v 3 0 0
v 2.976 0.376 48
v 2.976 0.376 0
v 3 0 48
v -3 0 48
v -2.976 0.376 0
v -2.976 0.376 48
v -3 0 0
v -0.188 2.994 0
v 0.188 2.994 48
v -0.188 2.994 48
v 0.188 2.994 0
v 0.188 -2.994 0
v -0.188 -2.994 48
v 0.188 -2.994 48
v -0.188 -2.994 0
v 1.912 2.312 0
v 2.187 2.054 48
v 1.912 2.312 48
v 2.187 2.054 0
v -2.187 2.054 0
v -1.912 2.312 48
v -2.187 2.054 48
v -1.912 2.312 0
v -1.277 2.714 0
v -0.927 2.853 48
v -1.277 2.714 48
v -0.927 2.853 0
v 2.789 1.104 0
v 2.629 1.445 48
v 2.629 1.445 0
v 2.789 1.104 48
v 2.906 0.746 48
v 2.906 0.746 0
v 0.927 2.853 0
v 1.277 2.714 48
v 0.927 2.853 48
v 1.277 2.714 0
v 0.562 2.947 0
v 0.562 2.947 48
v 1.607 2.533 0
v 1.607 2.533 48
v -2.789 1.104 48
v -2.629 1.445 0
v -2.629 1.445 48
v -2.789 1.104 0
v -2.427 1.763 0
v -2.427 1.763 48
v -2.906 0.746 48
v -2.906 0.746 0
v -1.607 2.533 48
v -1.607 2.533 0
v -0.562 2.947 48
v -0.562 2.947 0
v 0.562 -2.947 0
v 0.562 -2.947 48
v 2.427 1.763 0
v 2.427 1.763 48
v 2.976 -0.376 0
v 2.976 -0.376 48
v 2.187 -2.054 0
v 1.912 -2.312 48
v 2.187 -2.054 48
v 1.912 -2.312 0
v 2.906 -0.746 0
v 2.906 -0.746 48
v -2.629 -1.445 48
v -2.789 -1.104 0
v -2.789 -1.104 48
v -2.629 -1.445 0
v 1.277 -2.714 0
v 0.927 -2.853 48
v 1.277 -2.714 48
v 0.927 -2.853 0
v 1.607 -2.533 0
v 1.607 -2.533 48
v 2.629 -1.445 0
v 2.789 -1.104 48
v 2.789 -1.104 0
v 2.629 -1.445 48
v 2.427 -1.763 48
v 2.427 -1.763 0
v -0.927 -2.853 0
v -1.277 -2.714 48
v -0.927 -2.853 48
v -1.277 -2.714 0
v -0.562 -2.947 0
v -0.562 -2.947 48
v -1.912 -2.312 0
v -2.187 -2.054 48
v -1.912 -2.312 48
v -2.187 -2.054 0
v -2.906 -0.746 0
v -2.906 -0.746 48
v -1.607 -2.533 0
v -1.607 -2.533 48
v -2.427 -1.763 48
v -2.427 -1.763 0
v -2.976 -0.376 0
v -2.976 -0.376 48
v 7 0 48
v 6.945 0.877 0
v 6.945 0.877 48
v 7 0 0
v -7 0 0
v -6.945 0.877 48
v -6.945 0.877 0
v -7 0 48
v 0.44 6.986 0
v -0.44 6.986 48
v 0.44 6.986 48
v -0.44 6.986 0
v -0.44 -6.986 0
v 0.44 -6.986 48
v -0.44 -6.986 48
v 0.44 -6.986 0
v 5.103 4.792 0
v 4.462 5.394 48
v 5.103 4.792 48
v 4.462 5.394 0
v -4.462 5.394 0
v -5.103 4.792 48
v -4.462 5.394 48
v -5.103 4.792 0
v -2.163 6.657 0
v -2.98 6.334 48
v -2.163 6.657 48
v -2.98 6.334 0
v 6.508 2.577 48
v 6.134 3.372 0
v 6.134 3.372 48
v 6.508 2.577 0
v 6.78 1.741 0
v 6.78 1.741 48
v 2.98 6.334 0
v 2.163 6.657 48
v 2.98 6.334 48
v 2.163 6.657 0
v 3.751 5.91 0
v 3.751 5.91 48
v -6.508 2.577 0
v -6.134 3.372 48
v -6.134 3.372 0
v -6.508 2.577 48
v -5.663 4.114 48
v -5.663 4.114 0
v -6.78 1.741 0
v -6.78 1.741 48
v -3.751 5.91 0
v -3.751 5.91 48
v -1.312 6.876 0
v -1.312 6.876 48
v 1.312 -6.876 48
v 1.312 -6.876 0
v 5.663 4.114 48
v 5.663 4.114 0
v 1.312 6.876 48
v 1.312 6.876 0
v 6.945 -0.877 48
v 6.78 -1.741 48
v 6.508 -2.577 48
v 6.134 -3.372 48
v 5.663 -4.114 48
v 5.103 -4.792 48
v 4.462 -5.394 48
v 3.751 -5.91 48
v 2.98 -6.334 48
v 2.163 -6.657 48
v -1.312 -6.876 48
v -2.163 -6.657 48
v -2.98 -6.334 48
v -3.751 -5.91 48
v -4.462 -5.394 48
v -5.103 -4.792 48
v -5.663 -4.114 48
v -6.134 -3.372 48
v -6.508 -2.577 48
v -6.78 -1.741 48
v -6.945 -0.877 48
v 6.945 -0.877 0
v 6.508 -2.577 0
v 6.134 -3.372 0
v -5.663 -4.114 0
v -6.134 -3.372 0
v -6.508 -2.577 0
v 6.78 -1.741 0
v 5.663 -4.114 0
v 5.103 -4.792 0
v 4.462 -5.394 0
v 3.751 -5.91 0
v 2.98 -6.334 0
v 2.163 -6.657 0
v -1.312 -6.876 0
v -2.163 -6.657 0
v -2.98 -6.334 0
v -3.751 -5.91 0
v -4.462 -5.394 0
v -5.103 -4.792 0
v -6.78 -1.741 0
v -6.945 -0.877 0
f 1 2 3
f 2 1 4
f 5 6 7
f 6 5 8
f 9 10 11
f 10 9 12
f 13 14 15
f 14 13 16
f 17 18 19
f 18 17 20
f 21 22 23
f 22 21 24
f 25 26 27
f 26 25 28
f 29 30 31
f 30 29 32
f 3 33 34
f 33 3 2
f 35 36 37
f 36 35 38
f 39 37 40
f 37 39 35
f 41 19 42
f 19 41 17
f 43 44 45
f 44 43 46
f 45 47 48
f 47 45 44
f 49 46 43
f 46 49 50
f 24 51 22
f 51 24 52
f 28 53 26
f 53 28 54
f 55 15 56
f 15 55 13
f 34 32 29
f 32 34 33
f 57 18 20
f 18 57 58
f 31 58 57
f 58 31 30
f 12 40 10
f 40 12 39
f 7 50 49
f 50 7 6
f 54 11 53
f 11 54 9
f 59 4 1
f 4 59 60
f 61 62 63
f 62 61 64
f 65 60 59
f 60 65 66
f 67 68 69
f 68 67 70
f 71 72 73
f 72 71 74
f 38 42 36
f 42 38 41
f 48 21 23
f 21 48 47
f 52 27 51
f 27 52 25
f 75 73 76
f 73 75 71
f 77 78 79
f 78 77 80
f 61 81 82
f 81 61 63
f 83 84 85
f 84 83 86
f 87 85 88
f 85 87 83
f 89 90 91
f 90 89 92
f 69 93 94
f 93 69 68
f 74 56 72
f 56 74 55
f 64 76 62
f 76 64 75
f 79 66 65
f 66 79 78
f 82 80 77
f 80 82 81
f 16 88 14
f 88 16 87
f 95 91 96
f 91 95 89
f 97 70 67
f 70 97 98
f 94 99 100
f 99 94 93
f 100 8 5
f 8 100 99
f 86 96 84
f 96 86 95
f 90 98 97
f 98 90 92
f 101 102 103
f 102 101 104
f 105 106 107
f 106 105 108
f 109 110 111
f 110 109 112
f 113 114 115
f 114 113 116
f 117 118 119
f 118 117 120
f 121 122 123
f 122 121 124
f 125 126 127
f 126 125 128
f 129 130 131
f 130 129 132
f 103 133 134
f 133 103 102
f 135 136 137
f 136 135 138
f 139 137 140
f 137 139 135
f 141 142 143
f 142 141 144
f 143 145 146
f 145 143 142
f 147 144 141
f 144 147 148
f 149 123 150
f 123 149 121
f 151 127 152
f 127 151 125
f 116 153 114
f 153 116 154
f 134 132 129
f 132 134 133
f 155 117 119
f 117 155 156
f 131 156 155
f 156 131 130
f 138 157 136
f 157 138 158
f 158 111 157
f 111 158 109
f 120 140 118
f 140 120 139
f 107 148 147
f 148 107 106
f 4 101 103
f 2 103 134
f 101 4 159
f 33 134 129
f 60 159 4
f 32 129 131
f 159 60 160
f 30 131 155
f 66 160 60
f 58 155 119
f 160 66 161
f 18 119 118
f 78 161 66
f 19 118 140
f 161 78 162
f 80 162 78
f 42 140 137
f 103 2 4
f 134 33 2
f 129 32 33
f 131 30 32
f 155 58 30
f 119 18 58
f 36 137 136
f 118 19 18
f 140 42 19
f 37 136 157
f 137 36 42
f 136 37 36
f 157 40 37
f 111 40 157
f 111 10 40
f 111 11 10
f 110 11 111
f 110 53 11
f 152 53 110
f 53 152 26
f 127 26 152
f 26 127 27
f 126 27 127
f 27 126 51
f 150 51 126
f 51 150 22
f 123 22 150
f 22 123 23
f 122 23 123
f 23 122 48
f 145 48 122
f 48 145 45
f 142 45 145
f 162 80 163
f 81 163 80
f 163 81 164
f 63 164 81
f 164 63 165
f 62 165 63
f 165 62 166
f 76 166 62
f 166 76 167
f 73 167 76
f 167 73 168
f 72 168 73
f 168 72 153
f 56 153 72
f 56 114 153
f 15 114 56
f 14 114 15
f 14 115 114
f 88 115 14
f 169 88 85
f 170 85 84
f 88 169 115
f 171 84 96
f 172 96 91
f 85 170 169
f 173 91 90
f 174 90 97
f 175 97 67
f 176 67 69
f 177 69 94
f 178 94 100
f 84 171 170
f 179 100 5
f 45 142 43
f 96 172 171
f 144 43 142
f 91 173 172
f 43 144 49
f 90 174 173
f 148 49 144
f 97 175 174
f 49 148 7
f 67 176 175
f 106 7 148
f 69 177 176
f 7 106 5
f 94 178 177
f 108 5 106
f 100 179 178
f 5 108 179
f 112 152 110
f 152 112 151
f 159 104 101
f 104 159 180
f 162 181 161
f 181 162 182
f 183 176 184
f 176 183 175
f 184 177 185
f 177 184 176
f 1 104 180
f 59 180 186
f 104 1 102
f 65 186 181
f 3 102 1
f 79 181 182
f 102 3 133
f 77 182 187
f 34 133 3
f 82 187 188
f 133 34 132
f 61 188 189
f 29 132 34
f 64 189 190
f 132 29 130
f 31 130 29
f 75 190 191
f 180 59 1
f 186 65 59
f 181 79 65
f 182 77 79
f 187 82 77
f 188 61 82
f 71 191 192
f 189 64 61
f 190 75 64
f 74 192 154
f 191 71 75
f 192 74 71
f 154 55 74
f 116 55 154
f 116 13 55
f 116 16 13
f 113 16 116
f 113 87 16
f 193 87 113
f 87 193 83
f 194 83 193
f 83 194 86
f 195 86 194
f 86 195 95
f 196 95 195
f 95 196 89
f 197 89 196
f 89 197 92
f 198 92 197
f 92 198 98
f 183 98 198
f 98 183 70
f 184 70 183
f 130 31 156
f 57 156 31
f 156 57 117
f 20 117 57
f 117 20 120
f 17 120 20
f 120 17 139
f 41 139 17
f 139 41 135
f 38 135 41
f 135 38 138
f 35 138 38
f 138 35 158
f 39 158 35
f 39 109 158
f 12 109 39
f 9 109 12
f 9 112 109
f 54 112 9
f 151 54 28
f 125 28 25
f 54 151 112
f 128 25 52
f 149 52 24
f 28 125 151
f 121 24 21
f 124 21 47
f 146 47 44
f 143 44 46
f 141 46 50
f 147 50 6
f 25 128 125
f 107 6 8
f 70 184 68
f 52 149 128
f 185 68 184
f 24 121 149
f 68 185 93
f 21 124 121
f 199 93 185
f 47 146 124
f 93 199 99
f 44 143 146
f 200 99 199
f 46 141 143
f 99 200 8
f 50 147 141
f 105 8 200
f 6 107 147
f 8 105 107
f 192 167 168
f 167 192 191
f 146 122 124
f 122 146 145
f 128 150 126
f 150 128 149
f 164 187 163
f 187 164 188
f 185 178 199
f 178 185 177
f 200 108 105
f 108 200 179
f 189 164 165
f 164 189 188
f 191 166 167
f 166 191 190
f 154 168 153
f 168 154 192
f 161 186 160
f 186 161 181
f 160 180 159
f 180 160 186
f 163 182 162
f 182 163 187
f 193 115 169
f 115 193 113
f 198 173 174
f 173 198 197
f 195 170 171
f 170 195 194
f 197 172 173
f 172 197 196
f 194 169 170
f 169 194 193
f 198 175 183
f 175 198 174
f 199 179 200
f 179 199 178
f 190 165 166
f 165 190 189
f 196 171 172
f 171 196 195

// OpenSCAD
$fn = 50;


difference() {
	union() {
		*color(alpha = 1.0000000000, c = "gray") {
			translate(v = [0, 7, 0]) {
				linear_extrude(height = 1) {
					text(font = "Arial:style=Bold", halign = "center", size = 4.5000000000, text = "COMMENT plate main", valign = "center");
				}
			}
		}
		cylinder(h = 48, r = 7.0000000000);
	}
	union() {
		*color(alpha = 1.0000000000, c = "gray") {
			translate(v = [0, 7, 0]) {
				linear_extrude(height = 1) {
					text(font = "Arial:style=Bold", halign = "center", size = 4.5000000000, text = "COMMENT holes main", valign = "center");
				}
			}
		}
		translate(v = [0, 0, -100]) {
			cylinder(h = 200, r = 3.0000000000);
		}
		translate(v = [0, 0, -100]) {
			cylinder(h = 200, r = 1.5000000000);
		}
	}
}
